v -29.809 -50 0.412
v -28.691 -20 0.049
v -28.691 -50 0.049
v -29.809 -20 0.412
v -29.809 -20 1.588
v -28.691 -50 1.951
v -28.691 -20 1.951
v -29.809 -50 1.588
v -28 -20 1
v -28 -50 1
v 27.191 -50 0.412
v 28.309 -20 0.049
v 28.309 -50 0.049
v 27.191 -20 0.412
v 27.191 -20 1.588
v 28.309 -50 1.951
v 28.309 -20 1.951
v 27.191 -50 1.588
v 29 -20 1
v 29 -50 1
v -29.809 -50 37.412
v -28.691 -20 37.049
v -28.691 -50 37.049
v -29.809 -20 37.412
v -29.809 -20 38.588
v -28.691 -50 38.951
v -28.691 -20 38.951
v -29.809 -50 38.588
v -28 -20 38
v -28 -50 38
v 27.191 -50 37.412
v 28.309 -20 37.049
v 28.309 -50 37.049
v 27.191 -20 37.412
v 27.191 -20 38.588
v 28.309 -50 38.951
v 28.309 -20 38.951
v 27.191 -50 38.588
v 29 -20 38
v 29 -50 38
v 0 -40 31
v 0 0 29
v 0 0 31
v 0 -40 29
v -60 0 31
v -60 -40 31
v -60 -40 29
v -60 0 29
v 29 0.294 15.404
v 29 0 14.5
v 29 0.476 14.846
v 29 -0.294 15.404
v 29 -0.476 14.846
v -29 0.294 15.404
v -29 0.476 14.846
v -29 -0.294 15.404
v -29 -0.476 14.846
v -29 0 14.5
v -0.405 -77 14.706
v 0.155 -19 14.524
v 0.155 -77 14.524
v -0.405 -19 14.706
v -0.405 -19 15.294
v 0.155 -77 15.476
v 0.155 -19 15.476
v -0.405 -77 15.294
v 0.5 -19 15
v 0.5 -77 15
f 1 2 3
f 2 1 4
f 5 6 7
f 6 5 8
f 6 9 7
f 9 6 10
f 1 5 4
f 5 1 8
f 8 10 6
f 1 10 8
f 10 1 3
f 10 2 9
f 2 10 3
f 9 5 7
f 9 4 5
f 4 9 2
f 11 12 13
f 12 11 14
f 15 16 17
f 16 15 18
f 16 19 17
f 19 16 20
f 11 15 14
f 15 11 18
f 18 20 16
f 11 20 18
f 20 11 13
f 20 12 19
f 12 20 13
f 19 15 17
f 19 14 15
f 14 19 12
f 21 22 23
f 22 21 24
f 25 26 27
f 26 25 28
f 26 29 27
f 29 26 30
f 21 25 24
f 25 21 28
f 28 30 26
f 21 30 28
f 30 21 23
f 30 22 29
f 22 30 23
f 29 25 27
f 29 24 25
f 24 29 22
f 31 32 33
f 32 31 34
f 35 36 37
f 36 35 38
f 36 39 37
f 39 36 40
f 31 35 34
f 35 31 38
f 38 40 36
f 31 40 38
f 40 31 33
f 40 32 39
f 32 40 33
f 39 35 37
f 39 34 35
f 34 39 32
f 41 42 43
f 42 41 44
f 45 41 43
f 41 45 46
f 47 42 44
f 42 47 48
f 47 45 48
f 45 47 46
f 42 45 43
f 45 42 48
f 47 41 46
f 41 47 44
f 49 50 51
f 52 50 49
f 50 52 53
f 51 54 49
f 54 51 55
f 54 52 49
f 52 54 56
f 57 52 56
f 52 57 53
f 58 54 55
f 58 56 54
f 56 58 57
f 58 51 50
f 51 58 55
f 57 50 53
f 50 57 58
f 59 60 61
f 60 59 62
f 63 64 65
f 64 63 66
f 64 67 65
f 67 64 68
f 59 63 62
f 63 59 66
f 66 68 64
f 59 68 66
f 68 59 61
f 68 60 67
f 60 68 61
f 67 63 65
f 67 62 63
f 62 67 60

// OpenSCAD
// Define dimensions
tabletop_length = 60;
tabletop_width = 40;
tabletop_thickness = 2;
leg_radius = 1;
leg_height = 30;
crossbar_radius = 0.5;
crossbar_length = tabletop_length - 2 * leg_radius;  // The length of the crossbar

// Module definitions
module tabletop() {
    // Single slab for tabletop
    translate([0, 0, leg_height])
        cube([tabletop_length, tabletop_width, tabletop_thickness], center = true);
}

module leg() {
    // Cylindrical legs
    cylinder(h = leg_height, r = leg_radius, center = false);
}

module crossbar(length) {
    // Cylindrical crossbars
    cylinder(h = length, r = crossbar_radius, center = false);
}

// Assemble the table
translate([-tabletop_length / 2, -tabletop_width / 2, 0]) {
    // Create the tabletop
    tabletop();
    
    // Create the legs
    rotate([90, 0, 0]) {
        translate([leg_radius, leg_radius, 0]) leg(); // Leg 1
        translate([tabletop_length - 2 * leg_radius, leg_radius, 0]) leg(); // Leg 2
        translate([leg_radius, tabletop_width - 2 * leg_radius, 0]) leg(); // Leg 3
        translate([tabletop_length - 2 * leg_radius, tabletop_width - 2 * leg_radius, 0]) leg(); // Leg 4
    }
    
    // Create the horizontal crossbars
    translate([leg_radius, tabletop_width / 2, leg_height / 2]) rotate([0, 90, 0]) crossbar(crossbar_length); // Crossbar along one side
    translate([tabletop_length / 2, leg_radius, leg_height / 2]) rotate([90, 0, 0]) crossbar(crossbar_length); // Crossbar along other side
}
